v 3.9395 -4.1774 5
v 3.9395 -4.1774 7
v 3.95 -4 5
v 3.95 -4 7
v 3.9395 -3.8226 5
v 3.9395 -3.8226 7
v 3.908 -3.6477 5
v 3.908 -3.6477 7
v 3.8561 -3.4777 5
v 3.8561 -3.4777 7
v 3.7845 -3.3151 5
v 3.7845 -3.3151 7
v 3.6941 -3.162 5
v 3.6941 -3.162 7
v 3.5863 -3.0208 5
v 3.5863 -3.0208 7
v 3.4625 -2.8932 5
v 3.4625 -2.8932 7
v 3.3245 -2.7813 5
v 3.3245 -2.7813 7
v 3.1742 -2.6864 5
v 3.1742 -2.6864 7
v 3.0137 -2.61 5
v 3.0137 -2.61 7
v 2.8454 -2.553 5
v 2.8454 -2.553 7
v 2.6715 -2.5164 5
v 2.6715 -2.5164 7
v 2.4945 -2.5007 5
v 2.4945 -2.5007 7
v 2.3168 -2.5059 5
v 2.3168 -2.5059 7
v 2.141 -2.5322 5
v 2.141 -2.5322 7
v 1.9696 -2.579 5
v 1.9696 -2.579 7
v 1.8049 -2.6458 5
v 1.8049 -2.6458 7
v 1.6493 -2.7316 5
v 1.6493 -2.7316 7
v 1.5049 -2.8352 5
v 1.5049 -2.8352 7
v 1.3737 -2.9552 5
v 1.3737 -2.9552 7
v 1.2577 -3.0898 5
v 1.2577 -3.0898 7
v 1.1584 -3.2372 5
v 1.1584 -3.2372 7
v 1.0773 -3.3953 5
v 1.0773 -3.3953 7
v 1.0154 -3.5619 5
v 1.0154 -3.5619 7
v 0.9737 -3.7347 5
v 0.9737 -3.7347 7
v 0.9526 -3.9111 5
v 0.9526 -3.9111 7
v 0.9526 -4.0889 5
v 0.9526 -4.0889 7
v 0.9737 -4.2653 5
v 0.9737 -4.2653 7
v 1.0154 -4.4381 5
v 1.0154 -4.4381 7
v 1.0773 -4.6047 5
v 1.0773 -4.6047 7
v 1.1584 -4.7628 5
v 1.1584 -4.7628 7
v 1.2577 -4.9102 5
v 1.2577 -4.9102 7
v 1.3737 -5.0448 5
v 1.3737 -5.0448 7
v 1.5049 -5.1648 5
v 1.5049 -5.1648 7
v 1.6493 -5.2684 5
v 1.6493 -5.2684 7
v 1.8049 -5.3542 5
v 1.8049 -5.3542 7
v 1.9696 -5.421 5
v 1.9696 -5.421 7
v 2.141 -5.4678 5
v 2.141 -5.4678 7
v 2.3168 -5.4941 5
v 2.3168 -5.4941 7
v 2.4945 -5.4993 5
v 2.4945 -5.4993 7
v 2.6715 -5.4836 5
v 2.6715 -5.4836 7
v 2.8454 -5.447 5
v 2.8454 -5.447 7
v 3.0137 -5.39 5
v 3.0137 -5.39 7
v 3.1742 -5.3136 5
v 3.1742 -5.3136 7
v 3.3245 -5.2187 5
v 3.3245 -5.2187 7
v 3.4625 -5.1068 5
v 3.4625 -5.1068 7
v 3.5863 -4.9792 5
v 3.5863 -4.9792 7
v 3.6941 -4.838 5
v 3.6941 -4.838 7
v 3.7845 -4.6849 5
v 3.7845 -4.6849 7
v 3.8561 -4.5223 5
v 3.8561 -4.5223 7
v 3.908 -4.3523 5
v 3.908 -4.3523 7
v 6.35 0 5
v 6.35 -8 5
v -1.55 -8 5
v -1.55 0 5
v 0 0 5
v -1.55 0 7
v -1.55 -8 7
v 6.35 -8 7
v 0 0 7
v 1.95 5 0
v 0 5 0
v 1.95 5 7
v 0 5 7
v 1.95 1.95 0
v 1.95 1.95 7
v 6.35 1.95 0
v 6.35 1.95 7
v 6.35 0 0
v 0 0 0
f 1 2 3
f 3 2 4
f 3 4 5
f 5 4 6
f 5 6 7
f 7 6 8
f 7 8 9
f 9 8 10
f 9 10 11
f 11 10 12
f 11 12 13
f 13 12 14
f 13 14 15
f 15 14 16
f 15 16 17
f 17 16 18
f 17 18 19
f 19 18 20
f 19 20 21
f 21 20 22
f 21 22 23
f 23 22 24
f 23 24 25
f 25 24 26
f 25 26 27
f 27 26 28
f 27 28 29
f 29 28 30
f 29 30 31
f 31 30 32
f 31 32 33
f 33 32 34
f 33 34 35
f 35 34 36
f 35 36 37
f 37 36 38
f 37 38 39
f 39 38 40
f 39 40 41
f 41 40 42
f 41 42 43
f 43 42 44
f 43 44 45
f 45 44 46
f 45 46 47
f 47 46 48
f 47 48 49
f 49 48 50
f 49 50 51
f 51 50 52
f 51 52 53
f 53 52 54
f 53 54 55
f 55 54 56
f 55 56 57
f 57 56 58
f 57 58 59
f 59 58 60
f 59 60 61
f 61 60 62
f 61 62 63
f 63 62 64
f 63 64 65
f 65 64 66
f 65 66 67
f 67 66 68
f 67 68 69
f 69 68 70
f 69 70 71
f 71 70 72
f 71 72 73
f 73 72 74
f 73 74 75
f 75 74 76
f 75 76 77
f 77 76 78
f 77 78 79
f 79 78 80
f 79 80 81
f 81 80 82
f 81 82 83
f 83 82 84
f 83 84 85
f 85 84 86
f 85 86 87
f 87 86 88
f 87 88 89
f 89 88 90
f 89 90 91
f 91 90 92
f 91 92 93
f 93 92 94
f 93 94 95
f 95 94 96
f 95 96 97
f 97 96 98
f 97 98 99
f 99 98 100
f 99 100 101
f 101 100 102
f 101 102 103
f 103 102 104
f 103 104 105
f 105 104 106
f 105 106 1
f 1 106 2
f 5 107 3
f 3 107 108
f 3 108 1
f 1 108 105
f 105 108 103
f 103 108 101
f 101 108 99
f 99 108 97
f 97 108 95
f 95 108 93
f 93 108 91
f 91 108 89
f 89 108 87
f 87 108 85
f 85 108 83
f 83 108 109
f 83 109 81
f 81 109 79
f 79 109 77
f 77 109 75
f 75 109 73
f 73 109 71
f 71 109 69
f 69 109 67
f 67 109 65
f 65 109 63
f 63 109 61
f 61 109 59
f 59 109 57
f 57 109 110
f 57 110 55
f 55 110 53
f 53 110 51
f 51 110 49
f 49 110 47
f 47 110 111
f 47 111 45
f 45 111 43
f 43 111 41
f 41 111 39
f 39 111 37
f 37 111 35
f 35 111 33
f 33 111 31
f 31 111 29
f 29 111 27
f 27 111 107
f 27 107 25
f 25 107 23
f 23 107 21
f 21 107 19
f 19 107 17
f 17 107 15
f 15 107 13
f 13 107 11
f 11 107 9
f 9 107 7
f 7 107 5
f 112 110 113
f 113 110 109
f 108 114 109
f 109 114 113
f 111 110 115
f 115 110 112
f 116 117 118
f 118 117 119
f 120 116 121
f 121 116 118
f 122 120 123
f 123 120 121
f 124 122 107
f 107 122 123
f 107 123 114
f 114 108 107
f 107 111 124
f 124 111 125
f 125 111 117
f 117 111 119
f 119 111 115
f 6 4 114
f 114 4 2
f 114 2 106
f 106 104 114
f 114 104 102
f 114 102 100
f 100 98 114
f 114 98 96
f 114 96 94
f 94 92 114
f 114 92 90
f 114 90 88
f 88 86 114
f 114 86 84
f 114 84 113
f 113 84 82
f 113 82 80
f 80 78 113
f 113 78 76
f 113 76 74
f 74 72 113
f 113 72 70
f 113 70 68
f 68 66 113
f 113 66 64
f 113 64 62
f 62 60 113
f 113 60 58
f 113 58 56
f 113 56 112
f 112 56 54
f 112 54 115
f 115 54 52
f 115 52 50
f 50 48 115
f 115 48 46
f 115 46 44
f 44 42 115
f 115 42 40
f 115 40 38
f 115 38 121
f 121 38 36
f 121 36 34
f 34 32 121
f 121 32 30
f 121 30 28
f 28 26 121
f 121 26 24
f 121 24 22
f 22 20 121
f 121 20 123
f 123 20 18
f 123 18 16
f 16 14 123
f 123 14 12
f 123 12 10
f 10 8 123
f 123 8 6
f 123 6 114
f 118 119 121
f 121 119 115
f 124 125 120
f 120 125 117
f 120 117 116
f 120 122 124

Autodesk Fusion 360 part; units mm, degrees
sketch "Sketch1" plane through (0, 0, 0) normal (0, 0, 1) x (1, 0, 0)
  line L0 (0, 0) -> (6.35, 0)
  line L1 (6.35, 0) -> (6.35, 1.95)
  line L2 (6.35, 1.95) -> (1.95, 1.95)
  line L3 (0, 4.3112) -> (0, 0)
  line L4 (0, 0) -> (5, 0)
  line L5 (1.95, 1.95) -> (1.95, 5)
  line L6 (1.95, 5) -> (0, 5)
  line L7 (0, 5) -> (0, 0)
  dimension "d1" = 1.95
  dimension "d2" = 1.95
  dimension "d5" = 4.4
  dimension "d6" = 3.05
extrude "Extrude1" add sketch "Sketch1" along normal blind 7
sketch "Sketch2" plane through (0, 0, 0) normal (0, -1, 0) x (1, 0, 0)
  line L0 (0, 0) -> (6.35, 0)
  line L1 (6.35, 0) -> (6.35, 7)
  line L2 (6.35, 7) -> (0, 7)
  line L3 (0, 7) -> (0, 0)
  line L4 (6.35, 7) -> (-1.55, 7)
  line L5 (-1.55, 7) -> (-1.55, 5)
  line L6 (-1.55, 5) -> (6.35, 5)
  line L7 (6.35, 5) -> (6.35, 7)
  dimension "d9" = 2
  dimension "d10" = 7.9
extrude "Extrude2" add sketch "Sketch2" along normal blind 8 contours L3 L4 L5 L6 | L1 L2 L3 L4 L6 L7
sketch "Sketch3" plane through (0, 0, 7) normal (0, 0, 1) x (-1, 0, 0)
  line L0 (0, -5) -> (0, 0)
  line L1 (0, 0) -> (1.55, 0)
  line L2 (1.55, 0) -> (1.55, 8)
  line L3 (1.55, 8) -> (-6.35, 8)
  line L4 (-6.35, 8) -> (-6.35, -1.95)
  line L5 (-6.35, -1.95) -> (-1.95, -1.95)
  line L6 (-1.95, -1.95) -> (-1.95, -5)
  line L7 (-1.95, -5) -> (0, -5)
  circle A0 centre (-2.45, 4) radius 1.5
  dimension "d14" = 4
  dimension "d15" = 4
  dimension "d16" = 3
extrude "Extrude3" cut sketch "Sketch3" against normal blind 4 contours A0
